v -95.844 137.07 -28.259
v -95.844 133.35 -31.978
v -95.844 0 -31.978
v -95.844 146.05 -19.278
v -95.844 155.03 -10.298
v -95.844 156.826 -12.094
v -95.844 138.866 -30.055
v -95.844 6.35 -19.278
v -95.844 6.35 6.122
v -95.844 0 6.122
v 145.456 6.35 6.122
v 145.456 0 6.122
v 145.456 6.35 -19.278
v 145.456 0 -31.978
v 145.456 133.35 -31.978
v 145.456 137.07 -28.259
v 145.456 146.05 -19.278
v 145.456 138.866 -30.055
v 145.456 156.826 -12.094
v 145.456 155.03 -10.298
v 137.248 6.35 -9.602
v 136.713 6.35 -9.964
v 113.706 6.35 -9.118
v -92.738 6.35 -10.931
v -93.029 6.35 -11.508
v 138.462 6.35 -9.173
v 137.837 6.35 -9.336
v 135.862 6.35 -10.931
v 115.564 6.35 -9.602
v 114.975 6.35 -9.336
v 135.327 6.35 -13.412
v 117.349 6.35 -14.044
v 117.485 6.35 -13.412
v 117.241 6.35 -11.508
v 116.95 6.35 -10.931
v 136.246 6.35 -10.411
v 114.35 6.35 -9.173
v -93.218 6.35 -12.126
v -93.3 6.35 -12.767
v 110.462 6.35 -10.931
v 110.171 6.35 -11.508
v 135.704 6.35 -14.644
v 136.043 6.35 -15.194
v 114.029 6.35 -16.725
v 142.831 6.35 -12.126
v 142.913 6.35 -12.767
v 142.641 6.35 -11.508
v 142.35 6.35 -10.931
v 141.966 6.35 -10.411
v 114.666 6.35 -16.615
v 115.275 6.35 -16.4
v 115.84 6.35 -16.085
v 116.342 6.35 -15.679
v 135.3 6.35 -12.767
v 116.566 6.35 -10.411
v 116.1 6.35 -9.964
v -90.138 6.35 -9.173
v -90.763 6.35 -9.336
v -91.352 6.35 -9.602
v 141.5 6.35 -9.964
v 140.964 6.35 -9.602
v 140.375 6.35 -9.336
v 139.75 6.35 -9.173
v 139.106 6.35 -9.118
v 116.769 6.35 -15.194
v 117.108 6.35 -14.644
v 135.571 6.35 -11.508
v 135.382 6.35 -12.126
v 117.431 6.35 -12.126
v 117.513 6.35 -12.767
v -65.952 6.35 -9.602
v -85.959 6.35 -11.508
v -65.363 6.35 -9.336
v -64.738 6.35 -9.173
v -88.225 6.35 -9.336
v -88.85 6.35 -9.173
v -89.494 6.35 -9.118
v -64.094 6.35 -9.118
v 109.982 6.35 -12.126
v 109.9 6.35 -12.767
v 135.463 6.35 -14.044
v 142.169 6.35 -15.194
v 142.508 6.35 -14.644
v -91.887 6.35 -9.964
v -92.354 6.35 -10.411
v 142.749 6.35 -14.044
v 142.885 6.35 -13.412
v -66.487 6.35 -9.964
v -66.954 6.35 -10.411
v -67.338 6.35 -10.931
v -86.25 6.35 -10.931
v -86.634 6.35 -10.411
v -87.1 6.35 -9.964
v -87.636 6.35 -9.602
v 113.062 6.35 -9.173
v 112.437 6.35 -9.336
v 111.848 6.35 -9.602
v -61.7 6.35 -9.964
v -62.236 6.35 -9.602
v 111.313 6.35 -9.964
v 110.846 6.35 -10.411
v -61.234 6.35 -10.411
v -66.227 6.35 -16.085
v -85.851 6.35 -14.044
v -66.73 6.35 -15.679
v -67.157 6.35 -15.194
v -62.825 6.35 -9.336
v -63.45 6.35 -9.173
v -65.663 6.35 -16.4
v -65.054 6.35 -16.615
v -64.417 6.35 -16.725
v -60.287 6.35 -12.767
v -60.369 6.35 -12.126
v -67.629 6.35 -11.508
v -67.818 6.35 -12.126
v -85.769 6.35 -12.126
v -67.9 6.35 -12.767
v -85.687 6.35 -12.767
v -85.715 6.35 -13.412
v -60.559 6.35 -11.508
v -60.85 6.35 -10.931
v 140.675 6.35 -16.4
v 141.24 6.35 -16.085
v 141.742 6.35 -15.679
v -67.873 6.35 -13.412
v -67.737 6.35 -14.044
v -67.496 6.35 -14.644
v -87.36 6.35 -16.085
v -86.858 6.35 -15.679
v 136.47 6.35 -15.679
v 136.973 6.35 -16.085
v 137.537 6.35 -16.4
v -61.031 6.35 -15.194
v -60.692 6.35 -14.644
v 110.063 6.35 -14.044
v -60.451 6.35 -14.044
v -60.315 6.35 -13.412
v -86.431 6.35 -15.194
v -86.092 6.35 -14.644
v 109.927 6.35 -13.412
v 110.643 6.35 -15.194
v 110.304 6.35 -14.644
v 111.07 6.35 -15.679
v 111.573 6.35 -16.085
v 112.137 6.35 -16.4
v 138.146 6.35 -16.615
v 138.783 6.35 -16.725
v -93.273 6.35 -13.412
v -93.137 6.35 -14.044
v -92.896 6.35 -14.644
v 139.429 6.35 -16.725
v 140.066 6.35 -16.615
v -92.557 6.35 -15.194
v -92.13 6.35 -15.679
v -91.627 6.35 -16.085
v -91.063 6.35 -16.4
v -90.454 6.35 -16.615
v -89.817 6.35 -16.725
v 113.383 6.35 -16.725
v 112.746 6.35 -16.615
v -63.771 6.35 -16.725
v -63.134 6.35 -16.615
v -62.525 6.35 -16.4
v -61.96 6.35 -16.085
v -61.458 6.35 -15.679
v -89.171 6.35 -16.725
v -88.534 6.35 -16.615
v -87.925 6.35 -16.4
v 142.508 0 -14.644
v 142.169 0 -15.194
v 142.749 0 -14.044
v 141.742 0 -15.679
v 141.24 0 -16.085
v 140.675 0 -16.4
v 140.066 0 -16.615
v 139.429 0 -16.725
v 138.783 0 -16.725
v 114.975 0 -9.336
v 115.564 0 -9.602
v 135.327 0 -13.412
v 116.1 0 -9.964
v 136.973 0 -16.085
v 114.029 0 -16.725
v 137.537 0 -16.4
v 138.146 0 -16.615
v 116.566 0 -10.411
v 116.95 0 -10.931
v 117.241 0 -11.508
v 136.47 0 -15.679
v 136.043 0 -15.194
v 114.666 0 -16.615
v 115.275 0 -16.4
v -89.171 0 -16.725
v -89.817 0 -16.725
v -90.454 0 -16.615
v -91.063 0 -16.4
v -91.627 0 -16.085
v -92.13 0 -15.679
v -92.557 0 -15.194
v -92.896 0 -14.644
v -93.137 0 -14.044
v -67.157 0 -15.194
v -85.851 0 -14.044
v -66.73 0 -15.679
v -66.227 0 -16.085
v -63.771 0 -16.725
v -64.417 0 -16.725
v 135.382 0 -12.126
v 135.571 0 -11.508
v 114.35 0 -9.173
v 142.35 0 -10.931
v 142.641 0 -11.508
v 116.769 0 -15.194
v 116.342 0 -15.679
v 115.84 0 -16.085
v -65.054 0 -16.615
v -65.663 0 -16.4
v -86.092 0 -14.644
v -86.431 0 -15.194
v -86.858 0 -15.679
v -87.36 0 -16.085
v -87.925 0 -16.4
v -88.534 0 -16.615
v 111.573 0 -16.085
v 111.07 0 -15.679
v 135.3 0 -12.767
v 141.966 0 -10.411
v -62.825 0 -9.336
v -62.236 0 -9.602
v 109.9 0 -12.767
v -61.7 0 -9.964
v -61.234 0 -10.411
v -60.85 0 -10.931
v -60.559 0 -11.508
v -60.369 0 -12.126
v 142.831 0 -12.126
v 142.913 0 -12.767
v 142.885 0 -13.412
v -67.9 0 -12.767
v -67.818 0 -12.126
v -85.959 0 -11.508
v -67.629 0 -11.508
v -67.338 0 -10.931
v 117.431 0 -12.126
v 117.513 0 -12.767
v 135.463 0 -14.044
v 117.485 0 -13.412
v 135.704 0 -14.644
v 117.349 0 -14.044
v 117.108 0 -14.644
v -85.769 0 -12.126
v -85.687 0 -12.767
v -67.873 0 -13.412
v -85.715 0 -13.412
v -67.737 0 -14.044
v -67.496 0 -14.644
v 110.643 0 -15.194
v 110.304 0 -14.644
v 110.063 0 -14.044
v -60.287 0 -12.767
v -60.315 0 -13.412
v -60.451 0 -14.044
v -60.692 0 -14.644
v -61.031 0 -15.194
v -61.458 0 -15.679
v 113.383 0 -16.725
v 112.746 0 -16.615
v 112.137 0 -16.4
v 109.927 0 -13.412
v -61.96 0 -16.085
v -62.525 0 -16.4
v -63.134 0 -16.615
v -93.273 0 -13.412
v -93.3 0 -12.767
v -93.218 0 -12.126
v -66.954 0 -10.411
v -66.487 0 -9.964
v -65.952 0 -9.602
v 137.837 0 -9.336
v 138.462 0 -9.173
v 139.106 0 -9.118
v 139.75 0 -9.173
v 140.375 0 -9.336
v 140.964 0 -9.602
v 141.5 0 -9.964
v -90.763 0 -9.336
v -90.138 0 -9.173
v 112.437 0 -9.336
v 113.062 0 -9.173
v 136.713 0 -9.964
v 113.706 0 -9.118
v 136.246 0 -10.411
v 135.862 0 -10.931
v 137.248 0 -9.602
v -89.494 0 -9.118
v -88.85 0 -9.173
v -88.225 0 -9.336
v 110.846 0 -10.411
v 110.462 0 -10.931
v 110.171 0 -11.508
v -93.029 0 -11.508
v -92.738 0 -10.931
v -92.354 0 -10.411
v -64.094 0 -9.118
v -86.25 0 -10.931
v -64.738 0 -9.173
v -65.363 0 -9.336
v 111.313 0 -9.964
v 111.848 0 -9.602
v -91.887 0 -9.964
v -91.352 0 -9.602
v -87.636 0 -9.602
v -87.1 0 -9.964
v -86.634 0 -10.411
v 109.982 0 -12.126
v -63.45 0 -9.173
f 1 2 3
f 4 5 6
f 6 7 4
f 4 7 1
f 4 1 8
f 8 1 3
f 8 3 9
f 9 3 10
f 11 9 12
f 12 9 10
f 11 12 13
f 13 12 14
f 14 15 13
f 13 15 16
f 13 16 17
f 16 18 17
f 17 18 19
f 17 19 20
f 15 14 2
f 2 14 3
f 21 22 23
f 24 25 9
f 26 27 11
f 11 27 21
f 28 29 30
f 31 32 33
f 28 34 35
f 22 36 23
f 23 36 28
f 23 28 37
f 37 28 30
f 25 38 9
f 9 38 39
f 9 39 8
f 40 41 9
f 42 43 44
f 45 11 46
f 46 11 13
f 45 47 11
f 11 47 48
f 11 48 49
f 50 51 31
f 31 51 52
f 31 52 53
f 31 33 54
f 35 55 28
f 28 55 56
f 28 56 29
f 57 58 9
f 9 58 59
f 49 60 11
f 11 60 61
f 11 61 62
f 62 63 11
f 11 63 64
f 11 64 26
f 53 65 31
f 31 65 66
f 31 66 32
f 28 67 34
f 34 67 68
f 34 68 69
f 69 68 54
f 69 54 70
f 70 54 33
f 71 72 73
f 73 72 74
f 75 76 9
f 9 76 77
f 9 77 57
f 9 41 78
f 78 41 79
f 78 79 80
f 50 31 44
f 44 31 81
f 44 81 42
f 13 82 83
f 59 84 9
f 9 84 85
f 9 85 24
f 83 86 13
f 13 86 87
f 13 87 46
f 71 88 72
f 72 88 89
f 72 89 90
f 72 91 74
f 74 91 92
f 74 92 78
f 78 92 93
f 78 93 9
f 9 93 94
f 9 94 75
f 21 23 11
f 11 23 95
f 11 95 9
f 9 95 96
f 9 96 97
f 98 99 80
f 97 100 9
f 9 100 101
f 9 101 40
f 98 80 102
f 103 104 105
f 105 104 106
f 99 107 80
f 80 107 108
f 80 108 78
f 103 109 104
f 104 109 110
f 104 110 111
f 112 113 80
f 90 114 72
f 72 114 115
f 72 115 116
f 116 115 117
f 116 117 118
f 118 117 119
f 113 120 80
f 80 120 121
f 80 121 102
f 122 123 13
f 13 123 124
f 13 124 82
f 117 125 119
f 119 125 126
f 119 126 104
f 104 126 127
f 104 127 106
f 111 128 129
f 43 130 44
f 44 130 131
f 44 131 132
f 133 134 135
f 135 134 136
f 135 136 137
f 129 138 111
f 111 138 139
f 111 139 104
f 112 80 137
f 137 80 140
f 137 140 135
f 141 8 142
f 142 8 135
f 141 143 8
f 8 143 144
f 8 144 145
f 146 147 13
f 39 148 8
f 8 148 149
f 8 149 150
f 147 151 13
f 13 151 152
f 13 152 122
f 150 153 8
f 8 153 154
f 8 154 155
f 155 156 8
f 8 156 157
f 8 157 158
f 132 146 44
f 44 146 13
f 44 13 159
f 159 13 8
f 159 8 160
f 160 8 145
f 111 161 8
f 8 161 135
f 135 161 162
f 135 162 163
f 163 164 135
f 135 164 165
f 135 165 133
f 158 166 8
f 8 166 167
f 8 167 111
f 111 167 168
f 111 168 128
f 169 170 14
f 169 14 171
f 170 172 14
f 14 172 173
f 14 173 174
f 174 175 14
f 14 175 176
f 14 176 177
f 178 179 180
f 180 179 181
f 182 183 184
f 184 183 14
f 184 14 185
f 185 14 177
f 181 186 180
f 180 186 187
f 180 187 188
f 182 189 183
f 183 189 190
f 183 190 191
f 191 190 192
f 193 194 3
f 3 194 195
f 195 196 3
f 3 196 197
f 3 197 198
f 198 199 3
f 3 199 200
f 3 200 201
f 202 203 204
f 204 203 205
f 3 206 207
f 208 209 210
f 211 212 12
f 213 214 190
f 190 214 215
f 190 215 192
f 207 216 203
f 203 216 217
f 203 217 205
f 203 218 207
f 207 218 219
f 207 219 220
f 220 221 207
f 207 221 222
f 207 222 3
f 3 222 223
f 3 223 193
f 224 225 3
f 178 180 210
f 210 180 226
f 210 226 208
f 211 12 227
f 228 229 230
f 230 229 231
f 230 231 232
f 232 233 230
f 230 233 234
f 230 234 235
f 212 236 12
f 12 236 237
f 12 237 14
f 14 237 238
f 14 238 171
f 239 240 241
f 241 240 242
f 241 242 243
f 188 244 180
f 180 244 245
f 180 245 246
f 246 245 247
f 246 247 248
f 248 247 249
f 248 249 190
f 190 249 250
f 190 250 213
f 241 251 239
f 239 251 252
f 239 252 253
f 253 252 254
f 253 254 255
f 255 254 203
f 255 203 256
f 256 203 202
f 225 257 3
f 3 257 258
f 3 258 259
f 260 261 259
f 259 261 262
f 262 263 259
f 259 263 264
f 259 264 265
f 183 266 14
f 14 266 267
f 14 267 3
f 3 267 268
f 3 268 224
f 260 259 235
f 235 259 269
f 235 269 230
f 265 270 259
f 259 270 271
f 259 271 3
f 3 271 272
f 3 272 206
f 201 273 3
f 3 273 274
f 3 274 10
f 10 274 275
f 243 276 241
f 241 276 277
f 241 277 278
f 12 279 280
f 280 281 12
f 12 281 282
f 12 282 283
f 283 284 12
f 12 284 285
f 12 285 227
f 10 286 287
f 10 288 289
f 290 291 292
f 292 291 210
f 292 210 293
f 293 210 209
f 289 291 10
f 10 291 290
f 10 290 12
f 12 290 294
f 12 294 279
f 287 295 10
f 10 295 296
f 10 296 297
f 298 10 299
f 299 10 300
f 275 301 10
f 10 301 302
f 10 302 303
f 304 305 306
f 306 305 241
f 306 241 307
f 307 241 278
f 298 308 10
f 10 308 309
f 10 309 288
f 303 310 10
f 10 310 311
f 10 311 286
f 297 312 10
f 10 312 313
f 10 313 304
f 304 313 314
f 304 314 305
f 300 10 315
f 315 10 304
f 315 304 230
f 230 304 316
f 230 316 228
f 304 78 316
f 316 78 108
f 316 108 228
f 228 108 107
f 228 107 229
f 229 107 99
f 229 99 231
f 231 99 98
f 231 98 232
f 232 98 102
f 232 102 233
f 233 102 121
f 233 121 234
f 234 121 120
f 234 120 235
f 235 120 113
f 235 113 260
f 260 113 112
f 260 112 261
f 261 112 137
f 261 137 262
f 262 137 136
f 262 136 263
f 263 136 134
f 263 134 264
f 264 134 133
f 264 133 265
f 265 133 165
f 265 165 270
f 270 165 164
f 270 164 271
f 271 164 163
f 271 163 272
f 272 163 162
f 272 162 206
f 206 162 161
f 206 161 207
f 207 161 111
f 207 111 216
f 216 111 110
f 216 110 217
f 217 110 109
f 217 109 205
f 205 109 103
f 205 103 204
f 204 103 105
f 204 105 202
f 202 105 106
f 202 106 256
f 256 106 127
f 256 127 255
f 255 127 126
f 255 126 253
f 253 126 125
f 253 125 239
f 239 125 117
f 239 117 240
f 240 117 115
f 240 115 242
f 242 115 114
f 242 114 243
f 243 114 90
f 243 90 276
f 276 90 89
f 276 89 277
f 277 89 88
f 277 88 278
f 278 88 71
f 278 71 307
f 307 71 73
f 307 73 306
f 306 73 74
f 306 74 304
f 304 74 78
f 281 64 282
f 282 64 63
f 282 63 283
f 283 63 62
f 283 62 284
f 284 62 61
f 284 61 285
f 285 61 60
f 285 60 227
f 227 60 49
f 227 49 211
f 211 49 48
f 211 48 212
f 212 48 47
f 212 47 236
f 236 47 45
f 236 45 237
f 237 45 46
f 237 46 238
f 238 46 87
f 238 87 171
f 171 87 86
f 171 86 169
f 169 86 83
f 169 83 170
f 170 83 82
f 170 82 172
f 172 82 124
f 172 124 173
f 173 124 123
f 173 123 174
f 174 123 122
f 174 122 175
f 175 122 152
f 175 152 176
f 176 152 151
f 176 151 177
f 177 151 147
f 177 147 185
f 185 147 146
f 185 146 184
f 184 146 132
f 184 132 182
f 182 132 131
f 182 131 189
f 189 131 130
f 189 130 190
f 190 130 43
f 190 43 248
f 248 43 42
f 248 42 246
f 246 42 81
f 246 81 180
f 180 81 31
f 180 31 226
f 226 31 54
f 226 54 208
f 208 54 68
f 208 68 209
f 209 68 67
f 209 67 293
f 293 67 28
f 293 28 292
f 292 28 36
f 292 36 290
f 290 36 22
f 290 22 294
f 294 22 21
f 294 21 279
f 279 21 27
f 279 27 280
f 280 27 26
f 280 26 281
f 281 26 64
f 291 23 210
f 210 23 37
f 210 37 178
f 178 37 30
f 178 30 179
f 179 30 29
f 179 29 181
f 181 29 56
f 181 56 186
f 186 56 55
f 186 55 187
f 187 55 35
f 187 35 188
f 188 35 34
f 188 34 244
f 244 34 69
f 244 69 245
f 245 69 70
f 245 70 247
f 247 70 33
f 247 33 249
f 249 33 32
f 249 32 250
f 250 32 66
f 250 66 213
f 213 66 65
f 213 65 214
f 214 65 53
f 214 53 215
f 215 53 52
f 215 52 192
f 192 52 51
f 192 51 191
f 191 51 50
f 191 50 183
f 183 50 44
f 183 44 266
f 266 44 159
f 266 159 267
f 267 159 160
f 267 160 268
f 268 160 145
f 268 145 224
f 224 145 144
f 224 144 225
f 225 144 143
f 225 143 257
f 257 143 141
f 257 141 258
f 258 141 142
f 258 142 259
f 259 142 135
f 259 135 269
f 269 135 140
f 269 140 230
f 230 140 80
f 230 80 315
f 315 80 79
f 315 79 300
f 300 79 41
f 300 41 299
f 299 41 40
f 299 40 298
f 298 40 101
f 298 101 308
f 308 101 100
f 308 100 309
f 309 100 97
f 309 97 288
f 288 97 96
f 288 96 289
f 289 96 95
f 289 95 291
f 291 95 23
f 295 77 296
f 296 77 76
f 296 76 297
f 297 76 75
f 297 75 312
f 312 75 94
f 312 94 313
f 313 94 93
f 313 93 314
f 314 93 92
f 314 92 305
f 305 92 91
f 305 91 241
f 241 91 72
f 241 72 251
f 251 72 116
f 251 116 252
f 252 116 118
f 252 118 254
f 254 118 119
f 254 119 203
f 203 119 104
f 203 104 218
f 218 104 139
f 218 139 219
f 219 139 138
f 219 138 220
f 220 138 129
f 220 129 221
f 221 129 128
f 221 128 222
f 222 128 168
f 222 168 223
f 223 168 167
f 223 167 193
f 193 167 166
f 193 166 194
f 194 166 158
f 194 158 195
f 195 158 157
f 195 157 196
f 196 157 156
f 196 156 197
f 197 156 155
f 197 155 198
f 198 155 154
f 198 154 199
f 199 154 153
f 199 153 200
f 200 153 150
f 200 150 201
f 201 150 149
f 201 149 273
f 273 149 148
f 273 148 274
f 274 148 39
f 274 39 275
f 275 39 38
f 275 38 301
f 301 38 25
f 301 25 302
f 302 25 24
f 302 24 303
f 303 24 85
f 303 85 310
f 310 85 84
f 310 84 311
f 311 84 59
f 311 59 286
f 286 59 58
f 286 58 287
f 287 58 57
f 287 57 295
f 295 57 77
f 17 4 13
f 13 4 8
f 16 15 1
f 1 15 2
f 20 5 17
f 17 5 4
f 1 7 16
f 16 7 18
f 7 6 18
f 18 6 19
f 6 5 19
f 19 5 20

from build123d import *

# Parameters (mm, degrees)
SKETCH1_W           = 241.3
SKETCH1_H           = 38.1
BOSS_EXTRUDE1_DEPTH = 6.35
SKETCH2_R           = 3.81
CUT_EXTRUDE1_DEPTH  = 7.35
SKETCH3_W           = 241.3
SKETCH3_H           = 12.7
BOSS_EXTRUDE2_DEPTH = 139.7
CUT_EXTRUDE4_DEPTH  = 242.3
BOSS_EXTRUDE5_DEPTH = 241.3


with BuildPart() as part:
    # Sketch1 → Boss-Extrude1 (new body)
    with BuildSketch(Plane(origin=(0, 0, 0), x_dir=(1, 0, 0), z_dir=(0, 1, 0))):
        with Locations((24.806115108, 12.928417266)):
            Rectangle(SKETCH1_W, SKETCH1_H)
    extrude(amount=BOSS_EXTRUDE1_DEPTH)

    # Sketch2 → Cut-Extrude1 (cut, through all)
    with BuildSketch(Plane(origin=(0, 6.35, 0), x_dir=(1, 0, 0), z_dir=(0, 1, 0))):
        with Locations((-89.493884892, 12.928417266)):
            Circle(SKETCH2_R)
        with Locations((-64.093884892, 12.928417266)):
            Circle(SKETCH2_R)
        with Locations((113.706115108, 12.928417266)):
            Circle(SKETCH2_R)
        with Locations((139.106115108, 12.928417266)):
            Circle(SKETCH2_R)
    extrude(amount=-CUT_EXTRUDE1_DEPTH, mode=Mode.SUBTRACT)

    # Sketch3 → Boss-Extrude2 (add)
    with BuildSketch(Plane(origin=(0, 6.35, 0), x_dir=(1, 0, 0), z_dir=(0, 1, 0))):
        with Locations((24.806115108, 25.628417266)):
            Rectangle(SKETCH3_W, SKETCH3_H)
    extrude(amount=BOSS_EXTRUDE2_DEPTH)

    # Sketch8 → Cut-Extrude4 (cut, through all)
    with BuildSketch(Plane.ZY.offset(95.843884892)):
        Polygon((-19.278417266, 146.05), (-31.978417266, 146.05), (-31.978417266, 133.35), align=None)
        Polygon((-31.978417266, 133.35), (-31.978417266, 146.05), (-19.278417266, 146.05), (-19.278417266, 148.59), (-34.518417266, 148.59), (-34.518417266, 133.35), align=None)
    extrude(amount=-CUT_EXTRUDE4_DEPTH, mode=Mode.SUBTRACT)

    # Sketch9 → Boss-Extrude5 (add)
    with BuildSketch(Plane.ZY.offset(95.843884892)):
        Polygon((-30.054724611, 138.865795103), (-12.094212369, 156.826307345), (-10.298161145, 155.030256121), (-28.258673387, 137.069743879), align=None)
    extrude(amount=-BOSS_EXTRUDE5_DEPTH)


solid = part.part
